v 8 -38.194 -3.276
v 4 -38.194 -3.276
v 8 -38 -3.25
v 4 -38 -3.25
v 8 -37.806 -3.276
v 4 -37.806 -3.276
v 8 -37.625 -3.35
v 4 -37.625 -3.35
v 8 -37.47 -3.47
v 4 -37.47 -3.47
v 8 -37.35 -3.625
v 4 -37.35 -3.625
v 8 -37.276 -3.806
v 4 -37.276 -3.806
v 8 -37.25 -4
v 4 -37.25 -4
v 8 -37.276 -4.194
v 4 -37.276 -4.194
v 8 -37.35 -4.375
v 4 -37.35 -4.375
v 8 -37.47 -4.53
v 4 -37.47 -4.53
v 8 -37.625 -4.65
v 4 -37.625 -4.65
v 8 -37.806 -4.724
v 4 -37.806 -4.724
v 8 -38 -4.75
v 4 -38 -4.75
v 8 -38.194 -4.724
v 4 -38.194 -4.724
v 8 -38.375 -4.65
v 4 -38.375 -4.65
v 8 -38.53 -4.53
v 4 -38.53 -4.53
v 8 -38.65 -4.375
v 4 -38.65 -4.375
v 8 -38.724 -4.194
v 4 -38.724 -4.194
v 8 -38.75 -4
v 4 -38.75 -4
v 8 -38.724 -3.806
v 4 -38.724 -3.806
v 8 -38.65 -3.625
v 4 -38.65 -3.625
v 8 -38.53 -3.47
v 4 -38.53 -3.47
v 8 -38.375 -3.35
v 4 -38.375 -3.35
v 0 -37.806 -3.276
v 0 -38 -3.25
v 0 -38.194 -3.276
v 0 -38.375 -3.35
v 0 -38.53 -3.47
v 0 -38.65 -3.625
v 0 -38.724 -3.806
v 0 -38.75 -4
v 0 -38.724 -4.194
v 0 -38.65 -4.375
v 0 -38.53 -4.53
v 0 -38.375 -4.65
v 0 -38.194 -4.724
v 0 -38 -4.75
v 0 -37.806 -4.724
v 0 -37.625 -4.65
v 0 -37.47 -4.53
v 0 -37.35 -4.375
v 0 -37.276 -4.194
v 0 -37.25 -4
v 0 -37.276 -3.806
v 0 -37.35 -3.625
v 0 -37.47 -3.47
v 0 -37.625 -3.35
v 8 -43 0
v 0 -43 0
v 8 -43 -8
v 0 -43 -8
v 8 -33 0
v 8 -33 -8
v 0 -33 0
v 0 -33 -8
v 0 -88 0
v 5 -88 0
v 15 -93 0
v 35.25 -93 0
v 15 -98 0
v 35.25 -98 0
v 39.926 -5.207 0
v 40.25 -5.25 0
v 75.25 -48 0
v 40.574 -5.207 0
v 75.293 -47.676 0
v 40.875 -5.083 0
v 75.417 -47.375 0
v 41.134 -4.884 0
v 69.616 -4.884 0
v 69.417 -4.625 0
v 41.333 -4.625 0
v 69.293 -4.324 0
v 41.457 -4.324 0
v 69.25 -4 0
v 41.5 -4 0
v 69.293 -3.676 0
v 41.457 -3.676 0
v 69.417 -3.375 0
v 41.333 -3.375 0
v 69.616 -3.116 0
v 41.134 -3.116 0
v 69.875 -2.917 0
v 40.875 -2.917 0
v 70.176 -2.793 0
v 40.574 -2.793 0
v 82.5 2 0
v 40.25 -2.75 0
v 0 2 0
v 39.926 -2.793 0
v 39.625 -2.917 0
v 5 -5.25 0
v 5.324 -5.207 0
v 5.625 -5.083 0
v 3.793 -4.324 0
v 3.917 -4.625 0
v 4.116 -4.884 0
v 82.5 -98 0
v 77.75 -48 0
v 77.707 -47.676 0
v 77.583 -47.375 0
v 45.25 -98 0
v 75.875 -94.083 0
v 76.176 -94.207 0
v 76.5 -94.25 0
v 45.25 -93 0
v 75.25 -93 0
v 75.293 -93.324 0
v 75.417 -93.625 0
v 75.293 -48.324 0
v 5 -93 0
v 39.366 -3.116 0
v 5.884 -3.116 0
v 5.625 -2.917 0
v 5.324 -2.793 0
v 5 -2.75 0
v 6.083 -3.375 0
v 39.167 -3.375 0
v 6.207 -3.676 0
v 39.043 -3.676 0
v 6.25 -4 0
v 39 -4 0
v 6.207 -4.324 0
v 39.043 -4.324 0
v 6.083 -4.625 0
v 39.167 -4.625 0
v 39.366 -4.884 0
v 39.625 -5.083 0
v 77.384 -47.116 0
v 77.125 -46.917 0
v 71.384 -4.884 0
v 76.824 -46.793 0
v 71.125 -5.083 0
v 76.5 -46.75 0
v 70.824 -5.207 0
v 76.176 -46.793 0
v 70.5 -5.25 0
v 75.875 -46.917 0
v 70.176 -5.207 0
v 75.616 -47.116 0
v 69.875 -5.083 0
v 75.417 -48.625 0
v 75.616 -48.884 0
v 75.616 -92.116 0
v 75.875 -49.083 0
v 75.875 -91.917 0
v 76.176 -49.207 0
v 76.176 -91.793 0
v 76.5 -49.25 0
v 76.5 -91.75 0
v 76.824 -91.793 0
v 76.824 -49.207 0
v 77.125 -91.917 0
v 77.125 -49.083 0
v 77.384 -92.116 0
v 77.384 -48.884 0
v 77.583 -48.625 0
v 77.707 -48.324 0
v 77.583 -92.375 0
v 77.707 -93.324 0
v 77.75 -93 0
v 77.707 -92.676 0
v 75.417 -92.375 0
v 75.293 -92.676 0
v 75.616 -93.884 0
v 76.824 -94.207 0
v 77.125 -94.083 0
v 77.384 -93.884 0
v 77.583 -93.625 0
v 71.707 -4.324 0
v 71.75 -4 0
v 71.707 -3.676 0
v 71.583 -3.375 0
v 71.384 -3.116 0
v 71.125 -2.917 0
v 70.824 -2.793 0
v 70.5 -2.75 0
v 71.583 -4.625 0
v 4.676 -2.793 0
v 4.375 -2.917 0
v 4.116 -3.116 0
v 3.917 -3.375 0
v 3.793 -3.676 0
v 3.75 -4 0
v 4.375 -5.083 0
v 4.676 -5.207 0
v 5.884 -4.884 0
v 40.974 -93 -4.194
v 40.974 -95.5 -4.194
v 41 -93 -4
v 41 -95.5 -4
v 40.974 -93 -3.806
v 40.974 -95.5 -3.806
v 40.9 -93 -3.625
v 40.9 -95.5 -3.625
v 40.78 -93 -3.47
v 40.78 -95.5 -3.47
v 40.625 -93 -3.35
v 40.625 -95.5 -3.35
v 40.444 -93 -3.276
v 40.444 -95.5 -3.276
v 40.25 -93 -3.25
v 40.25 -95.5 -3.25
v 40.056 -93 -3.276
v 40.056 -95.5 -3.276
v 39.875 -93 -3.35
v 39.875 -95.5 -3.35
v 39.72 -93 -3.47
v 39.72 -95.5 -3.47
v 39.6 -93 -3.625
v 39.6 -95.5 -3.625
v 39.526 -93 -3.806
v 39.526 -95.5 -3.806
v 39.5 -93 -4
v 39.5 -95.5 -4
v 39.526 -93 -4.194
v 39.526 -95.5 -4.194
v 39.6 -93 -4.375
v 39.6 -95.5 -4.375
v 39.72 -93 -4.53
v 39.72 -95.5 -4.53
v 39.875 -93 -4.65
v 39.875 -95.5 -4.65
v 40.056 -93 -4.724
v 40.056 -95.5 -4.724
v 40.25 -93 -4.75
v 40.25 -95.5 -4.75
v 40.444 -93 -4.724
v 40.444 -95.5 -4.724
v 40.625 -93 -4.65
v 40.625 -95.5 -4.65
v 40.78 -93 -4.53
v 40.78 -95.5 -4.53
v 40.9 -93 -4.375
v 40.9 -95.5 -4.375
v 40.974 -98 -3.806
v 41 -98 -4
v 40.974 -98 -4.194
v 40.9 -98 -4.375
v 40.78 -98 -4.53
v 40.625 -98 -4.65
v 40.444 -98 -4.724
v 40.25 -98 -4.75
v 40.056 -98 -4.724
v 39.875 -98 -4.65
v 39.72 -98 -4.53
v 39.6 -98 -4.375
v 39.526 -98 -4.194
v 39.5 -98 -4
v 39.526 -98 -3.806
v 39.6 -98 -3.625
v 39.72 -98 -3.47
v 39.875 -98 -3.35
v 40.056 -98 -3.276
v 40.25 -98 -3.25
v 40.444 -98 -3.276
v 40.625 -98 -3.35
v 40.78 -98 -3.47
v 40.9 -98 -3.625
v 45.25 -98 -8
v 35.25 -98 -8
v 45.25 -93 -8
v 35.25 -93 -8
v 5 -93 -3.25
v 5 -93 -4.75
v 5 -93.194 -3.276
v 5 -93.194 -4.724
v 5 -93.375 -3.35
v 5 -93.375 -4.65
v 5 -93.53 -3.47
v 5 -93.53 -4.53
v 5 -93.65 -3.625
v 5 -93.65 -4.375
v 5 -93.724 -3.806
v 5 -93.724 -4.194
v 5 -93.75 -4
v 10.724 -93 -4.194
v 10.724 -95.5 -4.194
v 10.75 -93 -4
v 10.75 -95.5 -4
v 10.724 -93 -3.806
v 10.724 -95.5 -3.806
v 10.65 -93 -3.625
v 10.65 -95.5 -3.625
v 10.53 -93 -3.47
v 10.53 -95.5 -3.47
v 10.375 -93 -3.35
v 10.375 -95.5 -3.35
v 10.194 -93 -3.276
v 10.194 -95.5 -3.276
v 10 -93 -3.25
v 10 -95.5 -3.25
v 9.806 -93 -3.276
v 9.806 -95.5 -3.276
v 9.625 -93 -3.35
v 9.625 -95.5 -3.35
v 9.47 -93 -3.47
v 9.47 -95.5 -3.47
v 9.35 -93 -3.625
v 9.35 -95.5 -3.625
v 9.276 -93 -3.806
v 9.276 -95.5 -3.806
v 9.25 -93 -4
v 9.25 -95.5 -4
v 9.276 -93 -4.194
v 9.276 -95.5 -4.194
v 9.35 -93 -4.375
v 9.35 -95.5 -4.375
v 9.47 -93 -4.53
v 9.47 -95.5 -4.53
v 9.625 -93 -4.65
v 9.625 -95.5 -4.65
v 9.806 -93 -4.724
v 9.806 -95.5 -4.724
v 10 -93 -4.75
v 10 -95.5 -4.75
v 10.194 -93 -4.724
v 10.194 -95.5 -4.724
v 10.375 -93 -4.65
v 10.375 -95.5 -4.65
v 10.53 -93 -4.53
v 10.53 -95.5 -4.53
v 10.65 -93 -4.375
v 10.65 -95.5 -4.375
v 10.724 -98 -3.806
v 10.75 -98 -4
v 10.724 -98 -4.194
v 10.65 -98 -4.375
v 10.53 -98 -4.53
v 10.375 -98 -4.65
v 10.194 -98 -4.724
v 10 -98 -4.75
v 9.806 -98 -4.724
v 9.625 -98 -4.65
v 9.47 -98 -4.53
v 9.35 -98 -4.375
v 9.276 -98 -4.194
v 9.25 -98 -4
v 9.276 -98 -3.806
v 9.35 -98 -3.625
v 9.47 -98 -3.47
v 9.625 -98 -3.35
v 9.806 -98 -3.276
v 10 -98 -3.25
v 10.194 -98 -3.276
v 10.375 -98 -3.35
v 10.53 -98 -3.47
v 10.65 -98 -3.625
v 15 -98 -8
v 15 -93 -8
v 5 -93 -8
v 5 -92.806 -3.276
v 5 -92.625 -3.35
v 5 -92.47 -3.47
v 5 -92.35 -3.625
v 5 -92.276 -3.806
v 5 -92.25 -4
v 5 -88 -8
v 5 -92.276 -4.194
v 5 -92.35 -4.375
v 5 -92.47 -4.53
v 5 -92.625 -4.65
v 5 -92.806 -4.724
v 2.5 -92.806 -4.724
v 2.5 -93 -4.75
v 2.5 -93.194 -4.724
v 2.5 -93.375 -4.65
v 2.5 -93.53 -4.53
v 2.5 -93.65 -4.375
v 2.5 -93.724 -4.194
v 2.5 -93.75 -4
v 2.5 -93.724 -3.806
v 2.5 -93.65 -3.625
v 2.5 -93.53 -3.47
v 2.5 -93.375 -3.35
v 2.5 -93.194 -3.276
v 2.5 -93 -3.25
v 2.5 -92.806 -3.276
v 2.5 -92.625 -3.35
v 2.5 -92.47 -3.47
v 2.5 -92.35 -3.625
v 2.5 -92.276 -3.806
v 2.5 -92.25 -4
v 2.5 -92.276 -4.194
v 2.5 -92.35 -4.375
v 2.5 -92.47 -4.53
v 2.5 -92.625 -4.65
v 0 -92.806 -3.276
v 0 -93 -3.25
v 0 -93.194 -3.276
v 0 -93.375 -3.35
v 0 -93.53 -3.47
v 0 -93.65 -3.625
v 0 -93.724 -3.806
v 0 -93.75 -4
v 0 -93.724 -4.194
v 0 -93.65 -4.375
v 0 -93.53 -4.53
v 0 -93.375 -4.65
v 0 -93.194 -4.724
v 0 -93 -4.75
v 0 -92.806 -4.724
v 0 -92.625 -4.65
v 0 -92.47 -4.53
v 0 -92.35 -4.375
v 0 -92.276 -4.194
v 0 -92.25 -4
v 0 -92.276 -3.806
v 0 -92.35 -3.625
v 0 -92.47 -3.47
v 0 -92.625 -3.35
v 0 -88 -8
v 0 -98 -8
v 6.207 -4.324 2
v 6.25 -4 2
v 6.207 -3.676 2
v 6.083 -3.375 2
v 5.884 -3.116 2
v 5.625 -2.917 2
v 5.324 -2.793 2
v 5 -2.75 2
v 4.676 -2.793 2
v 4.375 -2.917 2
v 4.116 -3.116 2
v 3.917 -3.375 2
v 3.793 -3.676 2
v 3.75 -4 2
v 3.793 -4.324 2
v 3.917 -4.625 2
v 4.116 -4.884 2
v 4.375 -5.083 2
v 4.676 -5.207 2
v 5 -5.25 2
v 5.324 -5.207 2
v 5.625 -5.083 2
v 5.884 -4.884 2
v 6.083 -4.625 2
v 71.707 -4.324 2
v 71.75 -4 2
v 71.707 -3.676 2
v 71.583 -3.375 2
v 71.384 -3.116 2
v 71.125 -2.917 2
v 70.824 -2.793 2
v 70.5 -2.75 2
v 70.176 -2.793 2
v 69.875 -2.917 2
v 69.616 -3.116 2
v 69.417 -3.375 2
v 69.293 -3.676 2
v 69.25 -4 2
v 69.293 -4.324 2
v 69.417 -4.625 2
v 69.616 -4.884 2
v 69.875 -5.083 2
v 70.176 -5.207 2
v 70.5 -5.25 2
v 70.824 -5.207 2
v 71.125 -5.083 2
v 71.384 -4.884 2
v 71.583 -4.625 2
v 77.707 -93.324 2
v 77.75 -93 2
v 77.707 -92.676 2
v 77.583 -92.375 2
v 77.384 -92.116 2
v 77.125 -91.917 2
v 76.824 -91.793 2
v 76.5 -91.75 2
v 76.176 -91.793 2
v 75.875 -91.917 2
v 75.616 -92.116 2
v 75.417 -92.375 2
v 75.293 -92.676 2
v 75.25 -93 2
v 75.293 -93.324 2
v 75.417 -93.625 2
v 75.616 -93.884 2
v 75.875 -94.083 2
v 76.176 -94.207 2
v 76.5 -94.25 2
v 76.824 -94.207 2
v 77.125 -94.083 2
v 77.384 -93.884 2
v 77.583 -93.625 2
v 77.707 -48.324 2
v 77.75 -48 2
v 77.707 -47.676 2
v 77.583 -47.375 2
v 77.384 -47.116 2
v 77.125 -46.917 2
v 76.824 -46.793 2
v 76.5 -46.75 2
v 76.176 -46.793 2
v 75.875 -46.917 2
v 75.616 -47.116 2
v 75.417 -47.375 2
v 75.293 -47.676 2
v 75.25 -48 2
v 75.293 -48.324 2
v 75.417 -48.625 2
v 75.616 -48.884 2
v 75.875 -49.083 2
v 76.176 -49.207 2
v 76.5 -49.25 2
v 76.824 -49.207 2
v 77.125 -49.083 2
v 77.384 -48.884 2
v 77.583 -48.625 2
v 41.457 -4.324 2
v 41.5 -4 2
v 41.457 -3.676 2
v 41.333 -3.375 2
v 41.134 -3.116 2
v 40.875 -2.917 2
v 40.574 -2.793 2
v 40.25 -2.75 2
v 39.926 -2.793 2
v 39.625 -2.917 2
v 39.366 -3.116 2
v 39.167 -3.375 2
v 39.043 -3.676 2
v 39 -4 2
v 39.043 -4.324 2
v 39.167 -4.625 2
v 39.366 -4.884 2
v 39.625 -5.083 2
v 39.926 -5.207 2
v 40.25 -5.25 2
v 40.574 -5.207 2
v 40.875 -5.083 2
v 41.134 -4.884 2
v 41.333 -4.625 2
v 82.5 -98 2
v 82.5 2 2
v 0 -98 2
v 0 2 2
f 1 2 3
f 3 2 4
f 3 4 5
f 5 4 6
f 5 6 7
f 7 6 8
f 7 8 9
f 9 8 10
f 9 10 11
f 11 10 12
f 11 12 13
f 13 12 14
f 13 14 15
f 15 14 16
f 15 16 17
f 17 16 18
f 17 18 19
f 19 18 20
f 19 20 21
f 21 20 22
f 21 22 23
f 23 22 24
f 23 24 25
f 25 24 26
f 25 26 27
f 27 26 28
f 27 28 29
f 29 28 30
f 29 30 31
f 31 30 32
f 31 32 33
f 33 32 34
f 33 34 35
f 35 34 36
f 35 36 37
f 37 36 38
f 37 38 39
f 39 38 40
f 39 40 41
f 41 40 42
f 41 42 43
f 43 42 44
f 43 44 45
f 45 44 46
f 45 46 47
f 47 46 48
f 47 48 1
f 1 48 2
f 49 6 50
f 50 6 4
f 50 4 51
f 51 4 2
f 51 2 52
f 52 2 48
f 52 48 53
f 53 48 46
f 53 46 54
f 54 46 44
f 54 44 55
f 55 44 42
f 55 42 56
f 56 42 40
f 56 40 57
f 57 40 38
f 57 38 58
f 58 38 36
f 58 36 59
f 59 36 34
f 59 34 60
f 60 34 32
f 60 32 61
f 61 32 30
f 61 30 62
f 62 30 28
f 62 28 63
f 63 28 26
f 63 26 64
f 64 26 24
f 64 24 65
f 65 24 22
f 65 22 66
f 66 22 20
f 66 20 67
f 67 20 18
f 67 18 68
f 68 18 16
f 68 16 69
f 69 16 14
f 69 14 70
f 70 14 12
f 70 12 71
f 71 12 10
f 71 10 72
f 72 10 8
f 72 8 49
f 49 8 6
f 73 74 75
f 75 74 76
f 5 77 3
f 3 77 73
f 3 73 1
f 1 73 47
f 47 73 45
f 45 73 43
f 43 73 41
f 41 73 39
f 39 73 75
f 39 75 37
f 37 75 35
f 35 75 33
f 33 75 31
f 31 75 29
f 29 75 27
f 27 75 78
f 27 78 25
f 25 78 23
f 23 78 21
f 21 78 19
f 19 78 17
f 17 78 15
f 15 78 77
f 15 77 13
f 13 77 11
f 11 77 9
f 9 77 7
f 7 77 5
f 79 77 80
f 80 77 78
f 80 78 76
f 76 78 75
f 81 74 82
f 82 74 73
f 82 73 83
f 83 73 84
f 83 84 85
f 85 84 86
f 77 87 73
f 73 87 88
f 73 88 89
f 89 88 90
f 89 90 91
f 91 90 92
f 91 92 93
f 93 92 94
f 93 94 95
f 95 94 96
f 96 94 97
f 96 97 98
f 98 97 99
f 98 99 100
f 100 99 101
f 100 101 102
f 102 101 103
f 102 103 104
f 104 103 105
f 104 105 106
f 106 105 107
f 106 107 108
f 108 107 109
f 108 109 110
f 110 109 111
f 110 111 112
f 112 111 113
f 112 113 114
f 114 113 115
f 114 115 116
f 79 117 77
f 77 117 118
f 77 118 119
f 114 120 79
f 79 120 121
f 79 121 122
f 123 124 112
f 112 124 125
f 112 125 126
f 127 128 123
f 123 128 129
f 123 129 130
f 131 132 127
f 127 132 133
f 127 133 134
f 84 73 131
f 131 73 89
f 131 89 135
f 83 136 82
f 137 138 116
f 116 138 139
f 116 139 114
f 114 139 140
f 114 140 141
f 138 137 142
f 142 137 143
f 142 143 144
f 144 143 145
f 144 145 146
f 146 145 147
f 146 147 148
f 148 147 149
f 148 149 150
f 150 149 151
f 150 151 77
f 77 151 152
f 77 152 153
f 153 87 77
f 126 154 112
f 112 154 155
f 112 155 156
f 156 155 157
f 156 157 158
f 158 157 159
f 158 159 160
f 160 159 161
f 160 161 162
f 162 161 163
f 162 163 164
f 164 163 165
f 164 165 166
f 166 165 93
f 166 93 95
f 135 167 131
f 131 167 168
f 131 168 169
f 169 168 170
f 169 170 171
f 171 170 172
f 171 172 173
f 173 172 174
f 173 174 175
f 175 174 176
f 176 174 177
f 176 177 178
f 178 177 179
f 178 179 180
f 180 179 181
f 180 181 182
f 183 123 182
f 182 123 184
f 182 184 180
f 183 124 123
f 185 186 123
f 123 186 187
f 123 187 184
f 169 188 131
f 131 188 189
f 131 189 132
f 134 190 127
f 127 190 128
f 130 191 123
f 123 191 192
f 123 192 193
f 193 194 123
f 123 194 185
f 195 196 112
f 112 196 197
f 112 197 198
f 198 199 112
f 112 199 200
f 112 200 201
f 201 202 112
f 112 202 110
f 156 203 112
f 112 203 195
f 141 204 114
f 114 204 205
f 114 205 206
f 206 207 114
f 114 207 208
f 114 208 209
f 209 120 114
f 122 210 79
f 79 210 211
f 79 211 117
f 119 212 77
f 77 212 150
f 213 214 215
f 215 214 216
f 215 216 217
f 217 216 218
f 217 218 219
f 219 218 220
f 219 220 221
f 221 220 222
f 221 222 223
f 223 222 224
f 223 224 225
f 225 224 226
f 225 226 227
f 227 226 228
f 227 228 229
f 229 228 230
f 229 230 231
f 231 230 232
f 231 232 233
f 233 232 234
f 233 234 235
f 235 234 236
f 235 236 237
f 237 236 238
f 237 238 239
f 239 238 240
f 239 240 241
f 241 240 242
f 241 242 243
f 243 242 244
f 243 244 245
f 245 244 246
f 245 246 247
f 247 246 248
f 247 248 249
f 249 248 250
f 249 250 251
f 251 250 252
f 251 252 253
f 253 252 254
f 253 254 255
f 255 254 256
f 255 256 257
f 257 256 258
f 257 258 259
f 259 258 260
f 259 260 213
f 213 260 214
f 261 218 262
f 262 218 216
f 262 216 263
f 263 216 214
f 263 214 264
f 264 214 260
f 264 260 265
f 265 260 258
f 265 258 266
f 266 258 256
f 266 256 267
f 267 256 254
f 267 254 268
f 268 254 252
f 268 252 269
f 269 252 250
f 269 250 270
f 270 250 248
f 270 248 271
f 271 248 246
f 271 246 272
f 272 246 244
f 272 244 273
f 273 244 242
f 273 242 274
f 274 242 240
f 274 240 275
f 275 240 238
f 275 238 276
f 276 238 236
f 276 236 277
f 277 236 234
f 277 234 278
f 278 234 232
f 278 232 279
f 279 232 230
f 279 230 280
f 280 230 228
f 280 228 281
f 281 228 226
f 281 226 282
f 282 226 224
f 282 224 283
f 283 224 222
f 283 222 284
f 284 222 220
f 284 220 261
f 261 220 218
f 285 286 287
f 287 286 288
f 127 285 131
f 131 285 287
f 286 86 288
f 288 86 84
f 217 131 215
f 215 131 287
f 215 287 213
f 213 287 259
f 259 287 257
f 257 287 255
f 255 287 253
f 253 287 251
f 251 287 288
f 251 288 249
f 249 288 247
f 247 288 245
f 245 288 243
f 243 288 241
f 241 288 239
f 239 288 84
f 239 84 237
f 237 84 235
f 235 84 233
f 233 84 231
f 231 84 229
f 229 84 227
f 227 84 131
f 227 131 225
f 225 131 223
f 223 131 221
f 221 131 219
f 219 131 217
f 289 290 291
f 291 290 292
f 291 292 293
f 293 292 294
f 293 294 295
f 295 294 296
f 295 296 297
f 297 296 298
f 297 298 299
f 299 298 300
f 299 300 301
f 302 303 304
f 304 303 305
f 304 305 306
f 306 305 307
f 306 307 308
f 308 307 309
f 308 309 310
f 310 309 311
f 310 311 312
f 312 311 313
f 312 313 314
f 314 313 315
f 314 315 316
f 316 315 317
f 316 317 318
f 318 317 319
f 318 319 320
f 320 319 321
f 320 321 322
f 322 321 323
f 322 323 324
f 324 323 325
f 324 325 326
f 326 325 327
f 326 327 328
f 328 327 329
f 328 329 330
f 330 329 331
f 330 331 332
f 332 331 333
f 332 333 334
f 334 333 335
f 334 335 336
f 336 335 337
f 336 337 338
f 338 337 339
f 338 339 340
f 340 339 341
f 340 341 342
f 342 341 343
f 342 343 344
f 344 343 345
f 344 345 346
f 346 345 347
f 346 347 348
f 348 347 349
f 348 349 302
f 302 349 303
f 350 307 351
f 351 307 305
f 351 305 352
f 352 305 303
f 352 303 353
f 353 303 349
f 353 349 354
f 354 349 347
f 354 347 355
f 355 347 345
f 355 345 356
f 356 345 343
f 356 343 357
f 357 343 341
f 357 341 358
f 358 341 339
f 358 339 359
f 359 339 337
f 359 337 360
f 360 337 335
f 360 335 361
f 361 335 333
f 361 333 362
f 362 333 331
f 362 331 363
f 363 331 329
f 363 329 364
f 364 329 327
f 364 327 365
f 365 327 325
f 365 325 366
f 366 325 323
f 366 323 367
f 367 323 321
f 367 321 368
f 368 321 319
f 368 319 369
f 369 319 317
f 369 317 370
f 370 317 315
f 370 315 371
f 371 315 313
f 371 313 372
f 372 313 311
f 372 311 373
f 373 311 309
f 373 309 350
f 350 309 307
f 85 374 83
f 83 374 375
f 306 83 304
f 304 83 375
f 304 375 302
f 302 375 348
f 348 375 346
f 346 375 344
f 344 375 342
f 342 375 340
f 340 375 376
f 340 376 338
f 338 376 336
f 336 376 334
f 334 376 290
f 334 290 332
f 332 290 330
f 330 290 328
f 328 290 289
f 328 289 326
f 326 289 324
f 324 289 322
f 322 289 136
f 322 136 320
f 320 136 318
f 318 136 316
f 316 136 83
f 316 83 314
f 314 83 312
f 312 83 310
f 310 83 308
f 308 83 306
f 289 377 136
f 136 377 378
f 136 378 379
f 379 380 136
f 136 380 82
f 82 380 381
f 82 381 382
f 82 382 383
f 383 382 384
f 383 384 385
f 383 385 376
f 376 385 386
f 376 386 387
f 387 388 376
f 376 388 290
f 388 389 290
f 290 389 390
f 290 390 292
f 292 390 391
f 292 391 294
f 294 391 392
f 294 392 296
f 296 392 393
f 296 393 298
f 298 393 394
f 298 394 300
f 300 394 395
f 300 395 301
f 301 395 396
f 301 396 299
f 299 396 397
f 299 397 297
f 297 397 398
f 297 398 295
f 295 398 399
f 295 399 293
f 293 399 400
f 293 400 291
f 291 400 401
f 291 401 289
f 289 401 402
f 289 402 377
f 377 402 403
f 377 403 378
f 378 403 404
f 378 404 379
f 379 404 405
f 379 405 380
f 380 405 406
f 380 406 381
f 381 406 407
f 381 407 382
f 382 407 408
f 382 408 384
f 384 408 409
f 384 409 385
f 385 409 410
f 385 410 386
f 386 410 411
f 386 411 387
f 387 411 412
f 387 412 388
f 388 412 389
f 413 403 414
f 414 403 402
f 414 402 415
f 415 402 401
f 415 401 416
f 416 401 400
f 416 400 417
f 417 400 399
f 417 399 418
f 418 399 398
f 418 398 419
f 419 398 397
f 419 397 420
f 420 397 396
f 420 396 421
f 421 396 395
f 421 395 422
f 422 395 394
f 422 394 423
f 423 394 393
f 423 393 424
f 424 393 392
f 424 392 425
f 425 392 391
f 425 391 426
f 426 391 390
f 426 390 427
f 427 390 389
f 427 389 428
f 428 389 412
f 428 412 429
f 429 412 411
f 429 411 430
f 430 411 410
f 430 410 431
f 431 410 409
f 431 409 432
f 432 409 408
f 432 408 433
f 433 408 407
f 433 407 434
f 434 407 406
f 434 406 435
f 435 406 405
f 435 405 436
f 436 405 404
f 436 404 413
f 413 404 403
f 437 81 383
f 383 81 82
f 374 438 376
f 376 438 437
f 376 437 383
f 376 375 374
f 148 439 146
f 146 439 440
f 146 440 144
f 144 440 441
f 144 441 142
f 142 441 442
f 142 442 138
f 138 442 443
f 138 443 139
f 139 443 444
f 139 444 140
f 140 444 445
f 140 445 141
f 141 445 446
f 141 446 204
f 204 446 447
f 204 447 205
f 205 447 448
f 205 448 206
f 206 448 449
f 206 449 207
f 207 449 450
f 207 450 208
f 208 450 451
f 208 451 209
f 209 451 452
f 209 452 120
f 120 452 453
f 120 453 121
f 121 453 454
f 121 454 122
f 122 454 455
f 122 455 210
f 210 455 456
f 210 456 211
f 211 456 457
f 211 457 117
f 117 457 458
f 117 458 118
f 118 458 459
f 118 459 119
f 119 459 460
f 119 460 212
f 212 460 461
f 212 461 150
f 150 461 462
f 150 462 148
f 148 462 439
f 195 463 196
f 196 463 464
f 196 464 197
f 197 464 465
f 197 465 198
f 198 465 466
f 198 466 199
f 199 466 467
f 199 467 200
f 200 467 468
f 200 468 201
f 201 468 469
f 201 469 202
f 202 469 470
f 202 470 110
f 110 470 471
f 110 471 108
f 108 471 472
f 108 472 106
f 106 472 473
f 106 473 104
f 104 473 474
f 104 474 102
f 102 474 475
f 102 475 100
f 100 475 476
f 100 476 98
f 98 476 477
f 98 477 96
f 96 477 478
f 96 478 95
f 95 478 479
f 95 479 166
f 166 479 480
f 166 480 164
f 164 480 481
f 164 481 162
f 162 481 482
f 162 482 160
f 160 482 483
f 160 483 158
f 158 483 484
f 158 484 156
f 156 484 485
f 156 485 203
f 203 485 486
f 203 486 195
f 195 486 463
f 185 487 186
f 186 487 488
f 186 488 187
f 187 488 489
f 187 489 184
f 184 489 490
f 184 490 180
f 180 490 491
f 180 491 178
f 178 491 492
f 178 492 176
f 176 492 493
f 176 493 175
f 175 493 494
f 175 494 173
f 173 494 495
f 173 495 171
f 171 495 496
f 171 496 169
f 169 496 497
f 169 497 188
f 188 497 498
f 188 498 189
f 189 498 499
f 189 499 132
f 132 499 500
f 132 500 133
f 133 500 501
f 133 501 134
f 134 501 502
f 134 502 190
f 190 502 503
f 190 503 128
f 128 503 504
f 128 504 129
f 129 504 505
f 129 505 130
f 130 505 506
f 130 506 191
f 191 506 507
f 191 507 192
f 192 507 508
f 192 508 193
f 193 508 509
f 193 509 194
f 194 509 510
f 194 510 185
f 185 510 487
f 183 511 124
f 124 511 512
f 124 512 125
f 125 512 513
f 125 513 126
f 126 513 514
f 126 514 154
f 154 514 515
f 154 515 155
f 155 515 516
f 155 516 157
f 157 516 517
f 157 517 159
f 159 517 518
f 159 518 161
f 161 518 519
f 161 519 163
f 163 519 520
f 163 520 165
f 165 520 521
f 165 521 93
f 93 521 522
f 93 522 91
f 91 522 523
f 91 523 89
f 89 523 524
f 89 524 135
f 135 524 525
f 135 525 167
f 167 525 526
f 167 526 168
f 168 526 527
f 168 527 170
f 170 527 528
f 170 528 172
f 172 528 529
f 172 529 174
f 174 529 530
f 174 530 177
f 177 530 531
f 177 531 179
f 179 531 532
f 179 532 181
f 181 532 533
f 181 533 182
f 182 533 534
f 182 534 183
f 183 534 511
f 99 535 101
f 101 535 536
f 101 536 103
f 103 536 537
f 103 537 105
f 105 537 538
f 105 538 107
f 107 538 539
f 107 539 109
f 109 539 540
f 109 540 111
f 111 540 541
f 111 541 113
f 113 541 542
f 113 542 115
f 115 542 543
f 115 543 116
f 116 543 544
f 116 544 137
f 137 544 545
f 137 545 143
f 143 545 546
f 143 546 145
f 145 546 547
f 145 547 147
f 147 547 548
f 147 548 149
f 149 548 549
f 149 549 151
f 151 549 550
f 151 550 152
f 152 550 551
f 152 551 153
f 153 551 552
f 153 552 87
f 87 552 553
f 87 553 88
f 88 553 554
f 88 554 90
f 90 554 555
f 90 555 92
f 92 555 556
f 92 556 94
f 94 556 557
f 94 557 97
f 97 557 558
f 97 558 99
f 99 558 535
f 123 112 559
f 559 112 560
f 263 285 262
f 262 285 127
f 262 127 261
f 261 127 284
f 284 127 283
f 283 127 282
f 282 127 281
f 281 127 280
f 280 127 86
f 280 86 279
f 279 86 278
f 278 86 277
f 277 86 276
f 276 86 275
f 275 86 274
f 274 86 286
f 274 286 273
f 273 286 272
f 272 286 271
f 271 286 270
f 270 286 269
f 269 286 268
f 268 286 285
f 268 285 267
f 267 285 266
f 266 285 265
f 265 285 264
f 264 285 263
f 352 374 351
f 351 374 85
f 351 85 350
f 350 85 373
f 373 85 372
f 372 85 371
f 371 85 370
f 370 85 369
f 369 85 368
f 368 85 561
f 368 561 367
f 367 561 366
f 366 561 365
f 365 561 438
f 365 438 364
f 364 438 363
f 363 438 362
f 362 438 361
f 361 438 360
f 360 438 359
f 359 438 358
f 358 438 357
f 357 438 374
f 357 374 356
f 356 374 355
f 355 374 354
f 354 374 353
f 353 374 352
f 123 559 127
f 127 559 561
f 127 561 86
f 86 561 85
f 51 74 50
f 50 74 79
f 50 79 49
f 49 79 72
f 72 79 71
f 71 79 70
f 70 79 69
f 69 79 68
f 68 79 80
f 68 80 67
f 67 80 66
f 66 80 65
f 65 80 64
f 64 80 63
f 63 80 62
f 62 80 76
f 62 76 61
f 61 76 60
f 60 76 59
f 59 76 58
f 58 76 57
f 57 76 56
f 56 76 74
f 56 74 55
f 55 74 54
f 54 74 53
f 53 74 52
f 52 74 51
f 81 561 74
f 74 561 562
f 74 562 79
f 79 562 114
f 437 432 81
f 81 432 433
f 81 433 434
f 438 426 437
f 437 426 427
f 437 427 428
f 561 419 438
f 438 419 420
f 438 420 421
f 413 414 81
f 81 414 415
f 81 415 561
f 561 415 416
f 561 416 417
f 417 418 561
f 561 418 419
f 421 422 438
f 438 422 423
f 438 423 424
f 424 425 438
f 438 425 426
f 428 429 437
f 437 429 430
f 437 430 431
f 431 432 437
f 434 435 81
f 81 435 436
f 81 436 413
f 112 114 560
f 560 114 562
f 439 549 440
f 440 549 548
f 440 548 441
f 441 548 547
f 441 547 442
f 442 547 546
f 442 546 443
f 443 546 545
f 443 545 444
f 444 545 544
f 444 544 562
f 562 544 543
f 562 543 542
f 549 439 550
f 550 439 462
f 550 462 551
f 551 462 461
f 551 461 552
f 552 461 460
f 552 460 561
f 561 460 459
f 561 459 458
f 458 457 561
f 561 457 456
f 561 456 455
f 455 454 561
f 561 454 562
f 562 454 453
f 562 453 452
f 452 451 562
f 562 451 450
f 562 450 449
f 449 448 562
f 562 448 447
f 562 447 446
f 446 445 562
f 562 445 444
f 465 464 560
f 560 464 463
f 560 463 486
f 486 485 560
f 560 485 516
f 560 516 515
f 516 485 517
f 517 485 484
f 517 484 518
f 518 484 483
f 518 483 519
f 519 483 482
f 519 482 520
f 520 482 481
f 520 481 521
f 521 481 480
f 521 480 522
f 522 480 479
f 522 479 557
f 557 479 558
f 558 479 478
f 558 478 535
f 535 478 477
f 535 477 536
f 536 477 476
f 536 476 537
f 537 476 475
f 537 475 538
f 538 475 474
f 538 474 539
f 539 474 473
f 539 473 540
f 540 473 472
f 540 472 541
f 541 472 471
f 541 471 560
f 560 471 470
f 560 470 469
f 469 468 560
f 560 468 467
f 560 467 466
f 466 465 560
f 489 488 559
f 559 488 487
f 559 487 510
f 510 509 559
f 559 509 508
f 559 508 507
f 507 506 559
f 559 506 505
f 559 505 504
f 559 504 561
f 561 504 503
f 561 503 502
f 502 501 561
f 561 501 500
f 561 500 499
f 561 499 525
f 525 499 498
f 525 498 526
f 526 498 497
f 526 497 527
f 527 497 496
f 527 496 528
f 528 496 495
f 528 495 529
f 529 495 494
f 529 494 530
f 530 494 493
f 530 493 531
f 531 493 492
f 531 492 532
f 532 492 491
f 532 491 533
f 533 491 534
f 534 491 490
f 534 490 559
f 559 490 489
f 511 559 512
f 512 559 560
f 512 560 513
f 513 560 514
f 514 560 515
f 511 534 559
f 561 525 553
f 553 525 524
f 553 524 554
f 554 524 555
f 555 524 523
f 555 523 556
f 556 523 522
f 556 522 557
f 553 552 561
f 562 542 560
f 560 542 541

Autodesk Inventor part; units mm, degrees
ref_plane "YZ Plane" through (0, 0, 0) normal (1, 0, 0) x (0, 1, 0)
ref_plane "XZ Plane" through (0, 0, 0) normal (0, 1, 0) x (-1, 0, 0)
ref_plane "XY Plane" through (0, 0, 0) normal (0, 0, 1) x (1, 0, 0)
ref_plane "Work Plane1" through (0, 0, 0) normal (0, 0, 1) x (1, 0, 0)
sketch "Sketch1" plane through (0, 0, 0) normal (0, 0, 1) x (1, 0, 0)
  line L0 (0, 2) -> (80.5, 2) projected
  line L1 (0, -8) -> (0, 2) projected
  line L2 (82.5, 2) -> (82.5, -98) projected
  line L3 (82.5, -98) -> (72.5, -98) projected
  circle A0 centre (76.5, -93) radius 0.75 projected
  circle A1 centre (76.5, -48) radius 0.75 projected
  circle A2 centre (70.5, -4) radius 0.75 projected
  circle A3 centre (40.25, -4) radius 0.75 projected
  circle A4 centre (5, -4) radius 0.75 projected
  line L4 (0, 2) -> (82.5, 2)
  line L5 (82.5, 2) -> (82.5, -98)
  line L6 (82.5, -98) -> (0, -98)
  line L7 (0, -98) -> (0, 2)
  point P0 (0, 0)
extrude "Extrusion1" add sketch "Sketch1" along normal blind 2
sketch "Sketch2" plane through (0, 0, 2) normal (0, 0, 1) x (1, 0, 0)
  circle A0 centre (76.5, -93) radius 0.75 projected
  circle A1 centre (76.5, -93) radius 1.25
  circle A2 centre (76.5, -48) radius 0.75 projected
  circle A3 centre (76.5, -48) radius 1.25
  circle A4 centre (70.5, -4) radius 0.75 projected
  circle A5 centre (70.5, -4) radius 1.25
  circle A6 centre (40.25, -4) radius 0.75 projected
  circle A7 centre (40.25, -4) radius 1.25
  circle A8 centre (5, -4) radius 0.75 projected
  circle A9 centre (5, -4) radius 1.25
  point P0 (0, 0)
  dimension "d2" = 2.5
  dimension "d3" = 2.5
  dimension "d4" = 2.5
  dimension "d5" = 2.5
  dimension "d6" = 2.5
extrude "Extrusion2" cut sketch "Sketch2" against normal blind 2
sketch "Sketch3" plane through (0, -98, 0) normal (-1, 0, 0) x (0, 0, 1)
  line L0 (0, 45) -> (-5, 45) projected
  line L1 (0, 55) -> (-5, 55) projected
  line L2 (0, 45) -> (-8, 45)
  line L3 (-8, 45) -> (-8, 55)
  line L4 (-8, 55) -> (0, 55)
  line L5 (0, 55) -> (0, 45)
  circle A0 centre (-4, 50) radius 0.75
  point P0 (0, 98)
  dimension "d9" = 8
  dimension "d10" = 10
  dimension "d11" = 8
  dimension "d13" = 1.5
extrude "Extrusion3" add sketch "Sketch3" against normal blind 5
sketch "Sketch4" plane through (0, -98, 2) normal (-1, 0, 0) x (0, 0, 1)
  line L0 (-2, 0) -> (0, 0) projected
  line L1 (-2, 0) -> (-10, 0)
  line L2 (-10, 0) -> (-10, 10)
  line L3 (-10, 10) -> (-2, 10)
  line L4 (-2, 10) -> (-2, 0)
  circle A0 centre (-6, 5) radius 0.75
  point P0 (-2, 98)
  dimension "d16" = 8
  dimension "d17" = 10
  dimension "d19" = 1.5
extrude "Extrusion4" add sketch "Sketch4" against normal blind 5
sketch "Sketch5" plane through (0, -98, 2) normal (0, -1, 0) x (1, 0, 0)
  line L0 (82.5, -2) -> (5, -2) projected
  line L1 (5, -2) -> (15, -2)
  line L2 (15, -2) -> (15, -10)
  line L3 (15, -10) -> (5, -10)
  line L4 (5, -10) -> (5, -2)
  circle A0 centre (10, -6) radius 0.75
  line L5 (45.25, -2) -> (45.25, -7) projected
  line L6 (35.25, -2) -> (35.25, -7) projected
  line L7 (35.25, -2) -> (45.25, -2)
  line L8 (45.25, -2) -> (45.25, -10)
  line L9 (45.25, -10) -> (35.25, -10)
  line L10 (35.25, -10) -> (35.25, -2)
  circle A1 centre (40.25, -6) radius 0.75
  point P0 (0, -2)
  dimension "d22" = 10
  dimension "d23" = 8
  dimension "d25" = 1.5
  dimension "d27" = 1.5
extrude "Extrusion5" add sketch "Sketch5" against normal blind 5
sketch "Sketch6" plane through (0, 0, 2) normal (0, 0, 1) x (1, 0, 0)
  point P0 (0, 0)
sketch "Sketch7" plane through (0, 0, 2) normal (0, 0, 1) x (1, 0, 0)
  point P0 (0, 0)
sketch "Sketch8" plane through (0, -53, -8) normal (0, 0, -1) x (-1, 0, 0)
  line L0 (-5, 10) -> (0, 10) projected
  line L1 (0, 0) -> (0, 10) projected
  line L2 (-5, 10) -> (0, 10)
  line L3 (0, 10) -> (0, 0)
  line L4 (0, 0) -> (-5, 0)
  line L5 (-5, 0) -> (-5, 10)
  point P0 (0, 53)
extrude "Extrusion6" cut sketch "Sketch8" against normal blind 8
sketch "Sketch9" plane through (0, 0, 0) normal (0, 0, -1) x (-1, 0, 0)
  circle A0 centre (-76.5, -48) radius 1.25 projected
  line L0 (0, 2) -> (0, -98) projected
  line L1 (0, -53) -> (0, -63)
  line L2 (0, -63) -> (-8, -63)
  line L3 (-8, -63) -> (-8, -53)
  line L4 (-8, -53) -> (0, -53)
  point P0 (0, 0)
  dimension "d33" = 10
  dimension "d34" = 8
  dimension "d35" = 10
extrude "Extrusion7" add sketch "Sketch9" along normal blind 8 contours L0 L2 L3 L4
sketch "Sketch10" plane through (0, 0, -8) normal (0, 0, -1) x (-1, 0, 0)
  line L0 (0, -88) -> (0, -63) projected
  line L1 (-8, -53) -> (0, -53)
  line L2 (0, -53) -> (0, -63)
  line L3 (0, -63) -> (-8, -63)
  line L4 (-8, -63) -> (-8, -53)
  point P0 (0, 0)
extrude "Extrusion8" cut sketch "Sketch10" against normal blind 8
sketch "Sketch11" plane through (0, 0, 0) normal (0, 0, -1) x (-1, 0, 0)
  circle A0 centre (-76.5, -48) radius 1.25 projected
  line L0 (0, -48) -> (0, -33)
  line L1 (0, 2) -> (0, -98) projected
  line L2 (0, -33) -> (-8, -33)
  line L3 (-8, -33) -> (-8, -43)
  line L4 (-8, -43) -> (0, -43)
  point P0 (0, 0)
  dimension "d42" = 15
  dimension "d43" = 8
  dimension "d44" = 10
extrude "Extrusion9" add sketch "Sketch11" along normal blind 8 contours L4 L3 L2 L0
sketch "Sketch12" plane through (0, 0, -8) normal (0, 0, -1) x (-1, 0, 0)
  point P0 (0, 0)
sketch "Sketch13" plane through (0, -98, 2) normal (-1, 0, 0) x (0, 0, 1)
  point P0 (-2, 98)
sketch "Sketch14" plane through (0, -98, 2) normal (-1, 0, 0) x (0, 0, 1)
  line L0 (-10, 65) -> (-10, 55) projected
  circle A0 centre (-6, 60) radius 0.75
  point P0 (-2, 98)
  dimension "d50" = 1.5
extrude "Extrusion10" cut sketch "Sketch14" against normal blind 8
properties part number "Lado izquierdo" material "Nylon 6/6"
